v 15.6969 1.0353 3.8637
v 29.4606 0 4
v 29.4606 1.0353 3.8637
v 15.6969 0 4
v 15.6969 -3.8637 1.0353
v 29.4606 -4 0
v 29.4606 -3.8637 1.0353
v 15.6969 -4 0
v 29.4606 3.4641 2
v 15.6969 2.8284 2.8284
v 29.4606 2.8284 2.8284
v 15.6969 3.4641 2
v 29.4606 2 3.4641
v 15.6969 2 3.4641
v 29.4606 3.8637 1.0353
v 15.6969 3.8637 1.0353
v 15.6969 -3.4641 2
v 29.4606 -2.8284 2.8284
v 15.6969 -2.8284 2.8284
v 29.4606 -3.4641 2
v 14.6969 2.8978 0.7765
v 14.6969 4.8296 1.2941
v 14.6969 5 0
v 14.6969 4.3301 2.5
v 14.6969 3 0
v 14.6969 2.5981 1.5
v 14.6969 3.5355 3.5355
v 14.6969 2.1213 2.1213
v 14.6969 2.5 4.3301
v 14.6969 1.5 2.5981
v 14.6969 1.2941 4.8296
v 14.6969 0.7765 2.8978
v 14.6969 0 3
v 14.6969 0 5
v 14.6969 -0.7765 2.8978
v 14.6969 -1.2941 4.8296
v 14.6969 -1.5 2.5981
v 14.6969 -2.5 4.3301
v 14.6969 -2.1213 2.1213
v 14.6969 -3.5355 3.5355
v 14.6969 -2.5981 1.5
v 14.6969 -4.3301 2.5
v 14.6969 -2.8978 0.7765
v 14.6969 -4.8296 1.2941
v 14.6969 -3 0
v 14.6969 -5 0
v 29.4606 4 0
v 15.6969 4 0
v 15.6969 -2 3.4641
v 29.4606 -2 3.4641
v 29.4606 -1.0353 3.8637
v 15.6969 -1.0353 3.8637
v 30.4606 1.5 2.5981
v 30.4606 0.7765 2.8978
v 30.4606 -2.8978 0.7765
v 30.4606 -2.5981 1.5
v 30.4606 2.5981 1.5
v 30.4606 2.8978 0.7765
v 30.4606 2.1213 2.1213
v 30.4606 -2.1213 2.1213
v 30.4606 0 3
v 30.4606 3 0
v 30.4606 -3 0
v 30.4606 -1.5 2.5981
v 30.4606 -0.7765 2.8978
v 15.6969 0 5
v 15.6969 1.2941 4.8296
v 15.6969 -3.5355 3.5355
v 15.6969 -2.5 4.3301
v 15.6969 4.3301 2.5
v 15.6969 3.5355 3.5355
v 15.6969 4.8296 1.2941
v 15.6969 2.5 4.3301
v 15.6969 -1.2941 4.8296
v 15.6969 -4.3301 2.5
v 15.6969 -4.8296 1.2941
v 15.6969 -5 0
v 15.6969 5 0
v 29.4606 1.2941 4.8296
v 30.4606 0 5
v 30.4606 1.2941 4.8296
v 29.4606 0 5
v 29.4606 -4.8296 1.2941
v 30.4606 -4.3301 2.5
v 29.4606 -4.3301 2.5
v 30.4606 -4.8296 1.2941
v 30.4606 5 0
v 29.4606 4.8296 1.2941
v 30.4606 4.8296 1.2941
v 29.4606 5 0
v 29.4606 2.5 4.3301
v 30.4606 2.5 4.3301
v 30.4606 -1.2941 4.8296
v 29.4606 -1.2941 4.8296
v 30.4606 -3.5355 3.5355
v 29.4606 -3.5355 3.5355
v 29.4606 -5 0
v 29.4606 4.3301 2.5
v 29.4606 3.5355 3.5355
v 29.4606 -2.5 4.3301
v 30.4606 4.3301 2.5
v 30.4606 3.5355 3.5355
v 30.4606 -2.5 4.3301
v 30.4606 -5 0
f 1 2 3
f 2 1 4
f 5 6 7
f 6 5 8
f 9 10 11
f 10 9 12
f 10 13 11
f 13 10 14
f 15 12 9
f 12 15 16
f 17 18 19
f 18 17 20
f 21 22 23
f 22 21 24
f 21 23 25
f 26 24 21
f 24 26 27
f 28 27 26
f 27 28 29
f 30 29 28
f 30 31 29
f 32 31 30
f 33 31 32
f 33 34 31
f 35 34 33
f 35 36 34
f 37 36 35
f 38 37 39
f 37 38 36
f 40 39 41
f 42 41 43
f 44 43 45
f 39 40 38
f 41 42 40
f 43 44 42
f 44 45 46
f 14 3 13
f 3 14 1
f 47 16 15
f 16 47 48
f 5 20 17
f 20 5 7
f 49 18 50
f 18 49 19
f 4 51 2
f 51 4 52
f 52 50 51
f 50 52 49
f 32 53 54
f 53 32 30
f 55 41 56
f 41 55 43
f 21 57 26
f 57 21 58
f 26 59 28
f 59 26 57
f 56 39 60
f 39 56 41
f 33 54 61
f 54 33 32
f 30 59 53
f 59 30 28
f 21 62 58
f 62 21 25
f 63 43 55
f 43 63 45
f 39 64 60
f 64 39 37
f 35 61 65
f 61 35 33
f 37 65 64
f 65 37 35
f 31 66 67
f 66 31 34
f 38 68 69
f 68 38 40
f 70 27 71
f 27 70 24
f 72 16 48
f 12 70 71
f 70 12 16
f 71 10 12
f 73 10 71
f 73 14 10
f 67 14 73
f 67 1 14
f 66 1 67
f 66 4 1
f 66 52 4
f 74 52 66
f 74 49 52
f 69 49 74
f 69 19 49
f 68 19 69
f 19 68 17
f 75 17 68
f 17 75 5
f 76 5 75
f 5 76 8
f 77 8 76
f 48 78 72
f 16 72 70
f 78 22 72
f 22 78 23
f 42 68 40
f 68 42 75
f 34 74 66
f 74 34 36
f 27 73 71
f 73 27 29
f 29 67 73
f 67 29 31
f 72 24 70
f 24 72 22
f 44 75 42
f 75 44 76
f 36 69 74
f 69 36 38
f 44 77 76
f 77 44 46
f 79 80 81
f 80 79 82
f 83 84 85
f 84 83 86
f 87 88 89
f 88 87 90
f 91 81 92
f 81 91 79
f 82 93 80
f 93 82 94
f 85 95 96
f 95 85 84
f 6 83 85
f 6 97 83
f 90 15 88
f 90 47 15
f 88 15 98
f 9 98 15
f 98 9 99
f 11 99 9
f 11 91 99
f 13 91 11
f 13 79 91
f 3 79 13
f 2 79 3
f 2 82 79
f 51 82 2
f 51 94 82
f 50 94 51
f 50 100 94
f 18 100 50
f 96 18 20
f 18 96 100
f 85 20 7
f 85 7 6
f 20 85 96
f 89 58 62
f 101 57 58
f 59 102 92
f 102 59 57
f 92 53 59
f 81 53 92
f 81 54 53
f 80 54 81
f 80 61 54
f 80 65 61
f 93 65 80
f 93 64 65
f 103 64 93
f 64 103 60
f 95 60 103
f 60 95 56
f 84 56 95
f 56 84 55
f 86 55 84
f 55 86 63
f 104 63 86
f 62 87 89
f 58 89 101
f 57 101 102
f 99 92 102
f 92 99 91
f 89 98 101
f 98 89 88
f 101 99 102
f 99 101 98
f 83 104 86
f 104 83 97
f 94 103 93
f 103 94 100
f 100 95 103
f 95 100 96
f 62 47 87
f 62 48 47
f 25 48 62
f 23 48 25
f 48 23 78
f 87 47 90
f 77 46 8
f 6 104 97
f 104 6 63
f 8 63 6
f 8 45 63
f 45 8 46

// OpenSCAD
// file: ../build_environments.scad
// build_environments.scad: modules to build level sections
//

module pool(diameter=10.0, wall_height=2.0, step_width=3.0, connections=[])
{
    difference() {
        union() {
        difference() {
            cylinder(h=0.5,r1=diameter+step_width,r2=diameter+step_width,$fn=48);
            translate([0,0,-0.1])
                cylinder(h=0.7,r1=diameter,r2=diameter,$fn=48);
        }
        difference() {
            cylinder(h=wall_height,r1=diameter+step_width+1.0,r2=diameter+step_width+1.0,$fn=48);
            translate([0,0,-0.1])
                cylinder(h=wall_height+0.2,r1=diameter+step_width,r2=diameter+step_width,$fn=48);
        }
        }
    
        for (c = connections)
        {
            rotate([0,90,0]) {
                angle = atan2(c[1],c[0]);
                rotate([-angle,0,0]) {
                    cylinder(h=diameter+5.0,r1=c[2],r2=c[2],$fn=48);
                }
            }
        }
    }
}

module straight(length=10.0, width=2.0, dy1=0.0, dy2=0.0, dz=0.0)
{
    dims = [0, 0, 0, 0, 0, (dz/length)];
    matrix = [
        [ 1, dims[0], dims[1], 0 ],
        [ dims[2], 1, dims[4], 0 ],
        [ dims[5], dims[3], 1, 0 ],
        [ 0, 0, 0, 1 ]
    ];
    multmatrix(matrix)
    difference() {
        translate([dy1,0,0])
        union() {
            rotate([0,90,0]) {
                difference() {
                    cylinder(h=(length-dy1-dy2),r1=width+1.0,r2=width+1.0,$fn=24);
                    translate([0,0,-0.1])
                        cylinder(h=(length-dy1-dy2+0.2),r1=width,r2=width,$fn=24);
                }
                difference() {
                    cylinder(h=1.0,r1=width+2.0,r2=width+2.0,$fn=24);
                    translate([0,0,-0.1])
                        cylinder(h=1.2,r1=width,r2=width,$fn=24);
                }
                translate([0,0,(length-dy1-dy2)-1.0]) {
                    difference() {
                        cylinder(h=1.0,r1=width+2.0,r2=width+2.0,$fn=24);
                        translate([0,0,-0.1])
                            cylinder(h=1.2,r1=width,r2=width,$fn=24);
                    }
                }
            }
        }
        translate([0,0,-(2*width+4.0)/2])
            cube([3*length,3*length,2*width+4.0],center=true);
    }
}

module curve(p0=[0,0], center=[0,0], dir=1, angle=0.0, width=2.0)
{
    radius = sqrt((p0[0]-center[0])*(p0[0]-center[0]) + (p0[1]-center[1])*(p0[1]-center[1]));
    if (dir == 0) {
        difference() {
            rotate([0,0,-90])
            difference() {
                rotate_extrude(angle = angle, convexity = 10, $fn=32)
                    translate([radius, 0, 0])
                        circle(r = width+1.0,$fn=24);
                rotate([0,0,-1.0])
                    rotate_extrude(angle = angle+2.0, convexity = 10, $fn=32)
                        translate([radius, 0, 0])
                            circle(r = width,$fn=24);
            }
            translate([0,0,-(2*width+4.0)/2])
                cube([5*radius,5*radius,2*width+4.0],center=true);
        }
    }
    else {
        difference() {
            rotate([0,0,90])
            difference() {
                rotate_extrude(angle = -angle, convexity = 10, $fn=32)
                    translate([radius, 0, 0])
                        circle(r = width+1.0,$fn=24);
                rotate([0,0,1.0])
                    rotate_extrude(angle = -angle-2.0, convexity = 10, $fn=32)
                        translate([radius, 0, 0])
                            circle(r = width,$fn=24);
            }
            translate([0,0,-(2*width+4.0)/2])
                cube([5*radius,5*radius,2*width+4.0],center=true);
        }
    }

}

// test pool
//pool(diameter=12.0000, wall_height=3.0000, step_width=3.0000, connections=[[0.0000,-26.0000,2.0000], [23.6074,0.0000,2.0000]]);

// test straight, slope
//straight(length=26.0000, width=2.0000, dy1=11.8322, dy2=6.7082, dz=0.0000);
//straight(length=29.1549, width=12.0000, dy1=0.0000, dy2=0.0000, dz=-15.0000);

// test curve
//curve(p0=[23.6074, 0.0000], center=[23.6074, 5.0000], dir=0, angle=60.1011, width=2.0000);
//curve(p0=[33.6426, 12.4219], center=[37.9771, 9.9295], dir=1, angle=120.4627, width=2.0000);
// main file
use <../build_environments.scad>;
straight(length=40.0000, width=3.0000, dy1=14.6969, dy2=9.5394, dz=0.0000);
